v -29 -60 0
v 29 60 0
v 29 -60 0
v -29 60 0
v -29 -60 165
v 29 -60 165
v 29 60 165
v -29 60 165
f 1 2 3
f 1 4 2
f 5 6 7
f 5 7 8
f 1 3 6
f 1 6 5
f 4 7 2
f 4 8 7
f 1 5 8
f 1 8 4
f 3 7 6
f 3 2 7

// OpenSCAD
// Gemini 4 Argon Parametric OpenSCAD — PRT-02: Left Y-Axis Portal Upright & NEMA17 Motor Mount
$fn = 64;
translate([-29.00, -60.00, 0])
  cube([58, 120, 165]);
